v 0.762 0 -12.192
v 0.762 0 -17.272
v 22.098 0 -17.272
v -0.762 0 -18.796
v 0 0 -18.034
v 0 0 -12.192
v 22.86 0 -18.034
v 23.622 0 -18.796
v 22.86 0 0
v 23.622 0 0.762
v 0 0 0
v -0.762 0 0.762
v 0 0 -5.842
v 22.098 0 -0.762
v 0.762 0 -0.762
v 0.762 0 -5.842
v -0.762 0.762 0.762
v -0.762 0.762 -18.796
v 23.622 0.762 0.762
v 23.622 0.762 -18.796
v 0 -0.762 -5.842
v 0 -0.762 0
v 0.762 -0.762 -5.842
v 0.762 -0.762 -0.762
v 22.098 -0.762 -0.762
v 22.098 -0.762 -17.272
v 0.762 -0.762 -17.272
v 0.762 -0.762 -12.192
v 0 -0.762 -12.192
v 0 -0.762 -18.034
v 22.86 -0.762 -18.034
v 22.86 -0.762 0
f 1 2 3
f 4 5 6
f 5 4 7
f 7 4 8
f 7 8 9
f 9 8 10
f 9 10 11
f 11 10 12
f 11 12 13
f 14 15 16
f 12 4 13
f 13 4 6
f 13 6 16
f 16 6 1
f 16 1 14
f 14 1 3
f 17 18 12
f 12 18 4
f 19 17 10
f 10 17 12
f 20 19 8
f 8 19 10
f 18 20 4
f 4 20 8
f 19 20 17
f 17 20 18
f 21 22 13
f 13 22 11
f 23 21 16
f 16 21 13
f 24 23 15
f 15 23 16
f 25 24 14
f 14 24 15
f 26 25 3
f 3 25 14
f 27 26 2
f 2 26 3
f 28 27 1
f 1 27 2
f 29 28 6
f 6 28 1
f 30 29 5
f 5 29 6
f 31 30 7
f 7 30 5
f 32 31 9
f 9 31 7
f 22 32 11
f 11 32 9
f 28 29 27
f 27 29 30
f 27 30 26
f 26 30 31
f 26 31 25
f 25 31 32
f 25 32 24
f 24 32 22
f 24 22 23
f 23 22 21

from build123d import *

# Parameters (mm, degrees)
SKETCH4_W           = 24.384
SKETCH4_H           = 19.558
BOSS_EXTRUDE1_DEPTH = 0.762
BOSS_EXTRUDE2_DEPTH = 0.762


with BuildPart() as part:
    # Sketch4 → Boss-Extrude1 (new body)
    with BuildSketch(Plane(origin=(0, 0, 0), x_dir=(1, 0, 0), z_dir=(0, 1, 0))):
        with Locations((11.43, 9.017)):
            Rectangle(SKETCH4_W, SKETCH4_H)
    extrude(amount=BOSS_EXTRUDE1_DEPTH)

    # Sketch6 → Boss-Extrude2 (add)
    with BuildSketch(Plane.XZ):
        Polygon((0, 0), (22.86, 0), (22.86, -18.034), (0, -18.034), (0, -12.192), (0.762, -12.192), (0.762, -17.272), (22.098, -17.272), (22.098, -0.762), (0.762, -0.762), (0.762, -5.842), (0, -5.842), align=None)
    extrude(amount=BOSS_EXTRUDE2_DEPTH)


solid = part.part
